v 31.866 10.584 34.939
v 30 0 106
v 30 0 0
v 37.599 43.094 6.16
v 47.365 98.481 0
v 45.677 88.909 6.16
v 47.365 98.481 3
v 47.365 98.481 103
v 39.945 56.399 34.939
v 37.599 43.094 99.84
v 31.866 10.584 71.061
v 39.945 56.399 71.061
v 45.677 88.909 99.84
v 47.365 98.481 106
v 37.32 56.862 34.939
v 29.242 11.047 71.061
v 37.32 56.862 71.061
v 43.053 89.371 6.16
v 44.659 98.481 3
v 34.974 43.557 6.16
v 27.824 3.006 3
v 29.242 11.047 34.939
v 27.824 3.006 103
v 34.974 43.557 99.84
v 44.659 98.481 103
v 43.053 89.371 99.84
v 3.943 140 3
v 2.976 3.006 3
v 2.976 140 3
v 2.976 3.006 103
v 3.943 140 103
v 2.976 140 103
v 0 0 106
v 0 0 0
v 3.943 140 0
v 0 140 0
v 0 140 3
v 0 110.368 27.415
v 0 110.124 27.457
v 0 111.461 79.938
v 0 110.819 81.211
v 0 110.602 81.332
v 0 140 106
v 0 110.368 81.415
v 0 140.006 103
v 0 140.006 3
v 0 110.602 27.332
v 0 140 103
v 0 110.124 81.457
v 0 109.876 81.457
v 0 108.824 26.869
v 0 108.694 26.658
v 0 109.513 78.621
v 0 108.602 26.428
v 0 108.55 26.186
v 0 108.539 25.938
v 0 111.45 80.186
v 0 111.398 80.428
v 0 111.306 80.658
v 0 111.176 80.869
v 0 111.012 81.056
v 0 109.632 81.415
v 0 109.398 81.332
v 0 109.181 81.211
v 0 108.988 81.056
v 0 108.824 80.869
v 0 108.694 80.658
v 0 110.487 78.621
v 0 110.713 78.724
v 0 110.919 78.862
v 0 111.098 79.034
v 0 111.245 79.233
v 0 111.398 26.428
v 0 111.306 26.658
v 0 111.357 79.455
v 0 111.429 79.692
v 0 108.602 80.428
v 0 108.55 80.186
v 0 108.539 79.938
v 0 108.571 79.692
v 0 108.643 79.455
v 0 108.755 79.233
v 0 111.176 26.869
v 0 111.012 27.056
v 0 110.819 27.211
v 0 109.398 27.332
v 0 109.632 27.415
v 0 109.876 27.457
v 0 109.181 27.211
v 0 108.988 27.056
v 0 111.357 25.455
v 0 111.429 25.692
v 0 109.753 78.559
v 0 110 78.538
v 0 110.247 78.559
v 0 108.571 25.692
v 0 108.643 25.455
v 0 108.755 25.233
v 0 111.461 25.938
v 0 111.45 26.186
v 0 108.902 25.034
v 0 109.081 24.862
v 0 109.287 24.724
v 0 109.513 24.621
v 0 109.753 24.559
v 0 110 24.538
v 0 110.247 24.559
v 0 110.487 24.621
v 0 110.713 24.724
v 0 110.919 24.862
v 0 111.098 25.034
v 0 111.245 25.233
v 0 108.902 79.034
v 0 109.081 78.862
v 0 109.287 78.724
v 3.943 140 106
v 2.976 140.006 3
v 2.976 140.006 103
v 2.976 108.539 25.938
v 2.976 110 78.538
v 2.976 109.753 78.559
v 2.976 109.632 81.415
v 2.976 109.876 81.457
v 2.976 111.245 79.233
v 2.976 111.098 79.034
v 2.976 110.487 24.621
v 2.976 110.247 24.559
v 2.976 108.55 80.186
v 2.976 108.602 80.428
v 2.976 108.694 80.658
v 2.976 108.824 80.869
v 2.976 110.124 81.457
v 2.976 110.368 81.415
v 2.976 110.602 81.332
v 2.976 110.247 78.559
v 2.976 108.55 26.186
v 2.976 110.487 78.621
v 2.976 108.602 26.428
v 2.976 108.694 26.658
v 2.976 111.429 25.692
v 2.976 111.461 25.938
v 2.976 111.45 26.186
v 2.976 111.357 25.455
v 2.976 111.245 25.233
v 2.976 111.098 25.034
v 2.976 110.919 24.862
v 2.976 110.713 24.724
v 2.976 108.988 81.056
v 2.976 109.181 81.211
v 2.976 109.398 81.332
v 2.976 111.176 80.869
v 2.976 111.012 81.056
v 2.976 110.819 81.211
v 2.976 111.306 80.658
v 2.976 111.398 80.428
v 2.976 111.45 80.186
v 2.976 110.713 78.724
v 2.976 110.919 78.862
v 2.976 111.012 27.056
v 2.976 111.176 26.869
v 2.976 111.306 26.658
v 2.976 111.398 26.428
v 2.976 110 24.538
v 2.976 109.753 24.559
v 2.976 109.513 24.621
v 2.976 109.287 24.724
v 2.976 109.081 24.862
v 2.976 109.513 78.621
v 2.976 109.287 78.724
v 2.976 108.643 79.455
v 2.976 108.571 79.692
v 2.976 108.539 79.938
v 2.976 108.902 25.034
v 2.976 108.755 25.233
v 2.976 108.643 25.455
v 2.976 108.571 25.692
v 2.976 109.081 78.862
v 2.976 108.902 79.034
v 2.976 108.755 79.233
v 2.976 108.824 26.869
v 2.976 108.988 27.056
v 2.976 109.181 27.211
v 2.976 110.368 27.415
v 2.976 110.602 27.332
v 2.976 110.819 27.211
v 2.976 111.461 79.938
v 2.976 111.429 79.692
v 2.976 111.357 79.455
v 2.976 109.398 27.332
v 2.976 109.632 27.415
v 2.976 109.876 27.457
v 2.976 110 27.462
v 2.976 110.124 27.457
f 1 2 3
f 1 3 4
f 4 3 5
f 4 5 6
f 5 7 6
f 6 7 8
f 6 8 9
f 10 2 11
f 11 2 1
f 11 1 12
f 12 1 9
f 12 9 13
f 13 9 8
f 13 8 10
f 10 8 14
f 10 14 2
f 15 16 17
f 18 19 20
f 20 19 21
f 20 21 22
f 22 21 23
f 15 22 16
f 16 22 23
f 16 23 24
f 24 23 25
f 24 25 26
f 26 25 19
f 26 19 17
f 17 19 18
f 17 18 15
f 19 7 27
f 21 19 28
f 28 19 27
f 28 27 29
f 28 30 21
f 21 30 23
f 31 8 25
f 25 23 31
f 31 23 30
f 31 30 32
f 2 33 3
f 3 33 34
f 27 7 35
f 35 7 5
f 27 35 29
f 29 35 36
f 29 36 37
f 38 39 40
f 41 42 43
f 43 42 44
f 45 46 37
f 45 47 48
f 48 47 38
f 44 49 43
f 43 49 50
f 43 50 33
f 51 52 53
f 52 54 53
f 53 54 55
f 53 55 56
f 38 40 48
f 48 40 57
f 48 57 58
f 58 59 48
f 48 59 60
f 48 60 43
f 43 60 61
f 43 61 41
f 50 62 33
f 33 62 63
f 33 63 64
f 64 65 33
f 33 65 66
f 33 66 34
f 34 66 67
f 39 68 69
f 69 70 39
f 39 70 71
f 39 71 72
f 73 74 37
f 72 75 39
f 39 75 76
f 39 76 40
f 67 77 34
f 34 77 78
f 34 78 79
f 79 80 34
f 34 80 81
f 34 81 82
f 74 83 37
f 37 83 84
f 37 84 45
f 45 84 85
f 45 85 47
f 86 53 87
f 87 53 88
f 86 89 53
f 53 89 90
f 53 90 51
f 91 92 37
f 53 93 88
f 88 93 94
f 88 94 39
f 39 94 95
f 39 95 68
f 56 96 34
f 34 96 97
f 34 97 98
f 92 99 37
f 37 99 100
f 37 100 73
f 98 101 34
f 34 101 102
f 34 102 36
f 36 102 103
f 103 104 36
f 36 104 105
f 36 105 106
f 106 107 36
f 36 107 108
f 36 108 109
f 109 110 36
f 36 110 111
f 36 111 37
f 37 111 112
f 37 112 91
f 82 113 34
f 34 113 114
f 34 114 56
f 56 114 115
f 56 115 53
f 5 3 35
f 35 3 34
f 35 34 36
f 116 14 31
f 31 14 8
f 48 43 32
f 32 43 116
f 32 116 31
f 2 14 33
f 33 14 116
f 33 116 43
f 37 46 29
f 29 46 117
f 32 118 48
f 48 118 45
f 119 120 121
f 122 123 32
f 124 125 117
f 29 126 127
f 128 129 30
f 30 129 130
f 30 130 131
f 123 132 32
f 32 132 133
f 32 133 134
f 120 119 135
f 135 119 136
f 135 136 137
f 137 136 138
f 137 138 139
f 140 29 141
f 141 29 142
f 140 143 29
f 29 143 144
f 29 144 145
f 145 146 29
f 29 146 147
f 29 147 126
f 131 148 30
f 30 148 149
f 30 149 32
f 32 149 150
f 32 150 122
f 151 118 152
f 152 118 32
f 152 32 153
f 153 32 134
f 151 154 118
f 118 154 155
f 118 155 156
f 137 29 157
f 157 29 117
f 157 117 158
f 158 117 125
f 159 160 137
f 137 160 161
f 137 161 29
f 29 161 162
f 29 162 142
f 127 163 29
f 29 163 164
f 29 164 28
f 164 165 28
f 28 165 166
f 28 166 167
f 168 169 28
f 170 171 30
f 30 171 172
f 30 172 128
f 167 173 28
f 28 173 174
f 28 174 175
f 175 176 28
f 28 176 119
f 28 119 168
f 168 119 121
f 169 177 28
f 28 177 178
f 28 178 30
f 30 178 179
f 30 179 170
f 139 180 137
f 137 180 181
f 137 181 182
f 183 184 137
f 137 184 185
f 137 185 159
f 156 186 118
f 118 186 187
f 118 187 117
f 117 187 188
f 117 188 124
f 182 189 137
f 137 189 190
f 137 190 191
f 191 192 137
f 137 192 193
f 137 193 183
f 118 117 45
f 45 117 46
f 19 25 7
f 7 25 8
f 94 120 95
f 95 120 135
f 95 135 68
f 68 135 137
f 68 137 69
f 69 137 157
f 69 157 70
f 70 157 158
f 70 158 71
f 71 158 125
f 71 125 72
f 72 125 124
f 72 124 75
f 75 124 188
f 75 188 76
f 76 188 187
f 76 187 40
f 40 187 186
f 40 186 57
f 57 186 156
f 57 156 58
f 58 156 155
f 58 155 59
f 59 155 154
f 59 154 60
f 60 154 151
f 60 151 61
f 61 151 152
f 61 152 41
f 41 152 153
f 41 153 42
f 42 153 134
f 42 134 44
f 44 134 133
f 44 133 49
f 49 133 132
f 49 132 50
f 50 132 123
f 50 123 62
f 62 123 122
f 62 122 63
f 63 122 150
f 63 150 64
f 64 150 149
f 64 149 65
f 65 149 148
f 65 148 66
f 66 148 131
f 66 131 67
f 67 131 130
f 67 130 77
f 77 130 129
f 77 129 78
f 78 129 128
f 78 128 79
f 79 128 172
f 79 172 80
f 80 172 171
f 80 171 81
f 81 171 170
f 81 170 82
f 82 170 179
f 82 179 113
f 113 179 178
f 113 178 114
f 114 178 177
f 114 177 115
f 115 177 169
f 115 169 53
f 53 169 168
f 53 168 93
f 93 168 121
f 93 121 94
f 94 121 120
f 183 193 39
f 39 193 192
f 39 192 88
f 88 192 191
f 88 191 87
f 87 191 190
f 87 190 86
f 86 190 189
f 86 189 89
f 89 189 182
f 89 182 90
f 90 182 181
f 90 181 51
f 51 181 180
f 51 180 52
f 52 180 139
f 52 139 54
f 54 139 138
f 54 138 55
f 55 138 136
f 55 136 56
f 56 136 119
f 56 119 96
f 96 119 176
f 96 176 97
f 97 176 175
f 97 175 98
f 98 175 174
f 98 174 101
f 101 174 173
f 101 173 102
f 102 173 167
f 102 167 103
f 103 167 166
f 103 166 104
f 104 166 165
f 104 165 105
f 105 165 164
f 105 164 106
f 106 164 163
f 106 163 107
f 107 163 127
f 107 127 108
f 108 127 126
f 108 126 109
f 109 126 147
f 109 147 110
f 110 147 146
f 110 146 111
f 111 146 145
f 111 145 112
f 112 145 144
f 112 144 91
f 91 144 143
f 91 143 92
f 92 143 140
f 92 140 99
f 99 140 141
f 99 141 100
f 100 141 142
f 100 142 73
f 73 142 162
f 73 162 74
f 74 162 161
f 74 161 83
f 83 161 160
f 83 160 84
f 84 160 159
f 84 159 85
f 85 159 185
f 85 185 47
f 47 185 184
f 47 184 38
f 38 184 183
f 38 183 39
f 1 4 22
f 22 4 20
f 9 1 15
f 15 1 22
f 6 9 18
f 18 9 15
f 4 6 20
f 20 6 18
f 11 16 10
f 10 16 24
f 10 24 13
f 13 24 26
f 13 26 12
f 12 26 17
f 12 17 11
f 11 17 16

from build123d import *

# Parameters (mm, degrees)
BOSS_EXTRU_1_DEPTH         = 3
BOSS_EXTRU_2_DEPTH         = 100
R_P_TITION_LIN_AIRE1_COUNT = 2
R_P_TITION_LIN_AIRE1_PITCH = 103
ESQUISSE5_W                = 2.97567345
ESQUISSE5_H                = 100
BOSS_EXTRU_3_DEPTH         = 137
ESQUISSE6_W                = 2.705773981
ESQUISSE6_H                = 100
ESQUISSE9_R                = 1.462141601
ENL_V_MAT_EXTRU_8_DEPTH    = 10
ENL_V_MAT_EXTRU_10_DEPTH   = 10


with BuildPart() as part:
    # Esquisse2 → Boss.-Extru.1 (new body)
    with BuildSketch(Plane.XY):
        Polygon((0, 0), (0, 140), (3.942801894, 140), (47.364817767, 98.480775301), (30, 0), align=None)
    boss_extru_1 = extrude(amount=BOSS_EXTRU_1_DEPTH)

    # Esquisse4 → Boss.-Extru.2 (add)
    with BuildSketch(Plane.XY.offset(3)):
        Polygon((0, 0), (0, 3.006117571), (30.530059635, 3.006117571), (30, 0), align=None)
    extrude(amount=BOSS_EXTRU_2_DEPTH)

    # Répétition linéaire1: Boss.-Extru.1 ×2
    with Locations(*[(0, 0, i * R_P_TITION_LIN_AIRE1_PITCH) for i in range(1, R_P_TITION_LIN_AIRE1_COUNT)]):
        add(boss_extru_1)

    # Esquisse5 → Boss.-Extru.3 (add)
    with BuildSketch(Plane(origin=(0, 3.006117571, 0), x_dir=(1, 0, 0), z_dir=(0, 1, 0))):
        with Locations((1.487836725, -53)):
            Rectangle(ESQUISSE5_W, ESQUISSE5_H)
    extrude(amount=BOSS_EXTRU_3_DEPTH)

    # Balayage1: sweep along a curve in space
    with BuildLine() as balayage1_path:
        Line((30.530059635, 3.006117571, 103), (47.364817767, 98.480775301, 103))
    # Esquisse6 → Balayage1 (sweep)
    with BuildSketch(Plane(origin=(0, 3.006117571, 0), x_dir=(1, 0, 0), z_dir=(0, 1, 0))):
        with Locations((29.177172645, -53)):
            Rectangle(ESQUISSE6_W, ESQUISSE6_H)
    sweep(path=balayage1_path.line)

    # Esquisse9 → Enlèv. mat.-Extru.8 (cut)
    with BuildSketch(Plane(origin=(2.97567345, 0, 0), x_dir=(0, 0, -1), z_dir=(1, 0, 0))):
        with Locations((-80, 110)):
            Circle(ESQUISSE9_R)
    enl_v_mat_extru_8 = extrude(amount=-ENL_V_MAT_EXTRU_8_DEPTH, mode=Mode.SUBTRACT)

    # Symétrie3: Enlèv. mat.-Extru.8 across plane
    add(enl_v_mat_extru_8.mirror(Plane.XY.offset(53)), mode=Mode.SUBTRACT)

    # Esquisse11 → Enlèv. mat.-Extru.10 (cut)
    with BuildSketch(Plane(origin=(29.095389312, -5.13030215, 0), x_dir=(0, 0, -1), z_dir=(0.9848077530122089, -0.17364817766692642, 0))):
        Polygon((-6.160430803, 48.968309083), (-6.160430803, 95.489627834), (-34.939480046, 62.478304571), (-34.939480046, 15.95698582), align=None)
    enl_v_mat_extru_10 = extrude(amount=-ENL_V_MAT_EXTRU_10_DEPTH, mode=Mode.SUBTRACT)

    # Symétrie4: Enlèv. mat.-Extru.10 across plane
    add(enl_v_mat_extru_10.mirror(Plane.XY.offset(53)), mode=Mode.SUBTRACT)


solid = part.part
